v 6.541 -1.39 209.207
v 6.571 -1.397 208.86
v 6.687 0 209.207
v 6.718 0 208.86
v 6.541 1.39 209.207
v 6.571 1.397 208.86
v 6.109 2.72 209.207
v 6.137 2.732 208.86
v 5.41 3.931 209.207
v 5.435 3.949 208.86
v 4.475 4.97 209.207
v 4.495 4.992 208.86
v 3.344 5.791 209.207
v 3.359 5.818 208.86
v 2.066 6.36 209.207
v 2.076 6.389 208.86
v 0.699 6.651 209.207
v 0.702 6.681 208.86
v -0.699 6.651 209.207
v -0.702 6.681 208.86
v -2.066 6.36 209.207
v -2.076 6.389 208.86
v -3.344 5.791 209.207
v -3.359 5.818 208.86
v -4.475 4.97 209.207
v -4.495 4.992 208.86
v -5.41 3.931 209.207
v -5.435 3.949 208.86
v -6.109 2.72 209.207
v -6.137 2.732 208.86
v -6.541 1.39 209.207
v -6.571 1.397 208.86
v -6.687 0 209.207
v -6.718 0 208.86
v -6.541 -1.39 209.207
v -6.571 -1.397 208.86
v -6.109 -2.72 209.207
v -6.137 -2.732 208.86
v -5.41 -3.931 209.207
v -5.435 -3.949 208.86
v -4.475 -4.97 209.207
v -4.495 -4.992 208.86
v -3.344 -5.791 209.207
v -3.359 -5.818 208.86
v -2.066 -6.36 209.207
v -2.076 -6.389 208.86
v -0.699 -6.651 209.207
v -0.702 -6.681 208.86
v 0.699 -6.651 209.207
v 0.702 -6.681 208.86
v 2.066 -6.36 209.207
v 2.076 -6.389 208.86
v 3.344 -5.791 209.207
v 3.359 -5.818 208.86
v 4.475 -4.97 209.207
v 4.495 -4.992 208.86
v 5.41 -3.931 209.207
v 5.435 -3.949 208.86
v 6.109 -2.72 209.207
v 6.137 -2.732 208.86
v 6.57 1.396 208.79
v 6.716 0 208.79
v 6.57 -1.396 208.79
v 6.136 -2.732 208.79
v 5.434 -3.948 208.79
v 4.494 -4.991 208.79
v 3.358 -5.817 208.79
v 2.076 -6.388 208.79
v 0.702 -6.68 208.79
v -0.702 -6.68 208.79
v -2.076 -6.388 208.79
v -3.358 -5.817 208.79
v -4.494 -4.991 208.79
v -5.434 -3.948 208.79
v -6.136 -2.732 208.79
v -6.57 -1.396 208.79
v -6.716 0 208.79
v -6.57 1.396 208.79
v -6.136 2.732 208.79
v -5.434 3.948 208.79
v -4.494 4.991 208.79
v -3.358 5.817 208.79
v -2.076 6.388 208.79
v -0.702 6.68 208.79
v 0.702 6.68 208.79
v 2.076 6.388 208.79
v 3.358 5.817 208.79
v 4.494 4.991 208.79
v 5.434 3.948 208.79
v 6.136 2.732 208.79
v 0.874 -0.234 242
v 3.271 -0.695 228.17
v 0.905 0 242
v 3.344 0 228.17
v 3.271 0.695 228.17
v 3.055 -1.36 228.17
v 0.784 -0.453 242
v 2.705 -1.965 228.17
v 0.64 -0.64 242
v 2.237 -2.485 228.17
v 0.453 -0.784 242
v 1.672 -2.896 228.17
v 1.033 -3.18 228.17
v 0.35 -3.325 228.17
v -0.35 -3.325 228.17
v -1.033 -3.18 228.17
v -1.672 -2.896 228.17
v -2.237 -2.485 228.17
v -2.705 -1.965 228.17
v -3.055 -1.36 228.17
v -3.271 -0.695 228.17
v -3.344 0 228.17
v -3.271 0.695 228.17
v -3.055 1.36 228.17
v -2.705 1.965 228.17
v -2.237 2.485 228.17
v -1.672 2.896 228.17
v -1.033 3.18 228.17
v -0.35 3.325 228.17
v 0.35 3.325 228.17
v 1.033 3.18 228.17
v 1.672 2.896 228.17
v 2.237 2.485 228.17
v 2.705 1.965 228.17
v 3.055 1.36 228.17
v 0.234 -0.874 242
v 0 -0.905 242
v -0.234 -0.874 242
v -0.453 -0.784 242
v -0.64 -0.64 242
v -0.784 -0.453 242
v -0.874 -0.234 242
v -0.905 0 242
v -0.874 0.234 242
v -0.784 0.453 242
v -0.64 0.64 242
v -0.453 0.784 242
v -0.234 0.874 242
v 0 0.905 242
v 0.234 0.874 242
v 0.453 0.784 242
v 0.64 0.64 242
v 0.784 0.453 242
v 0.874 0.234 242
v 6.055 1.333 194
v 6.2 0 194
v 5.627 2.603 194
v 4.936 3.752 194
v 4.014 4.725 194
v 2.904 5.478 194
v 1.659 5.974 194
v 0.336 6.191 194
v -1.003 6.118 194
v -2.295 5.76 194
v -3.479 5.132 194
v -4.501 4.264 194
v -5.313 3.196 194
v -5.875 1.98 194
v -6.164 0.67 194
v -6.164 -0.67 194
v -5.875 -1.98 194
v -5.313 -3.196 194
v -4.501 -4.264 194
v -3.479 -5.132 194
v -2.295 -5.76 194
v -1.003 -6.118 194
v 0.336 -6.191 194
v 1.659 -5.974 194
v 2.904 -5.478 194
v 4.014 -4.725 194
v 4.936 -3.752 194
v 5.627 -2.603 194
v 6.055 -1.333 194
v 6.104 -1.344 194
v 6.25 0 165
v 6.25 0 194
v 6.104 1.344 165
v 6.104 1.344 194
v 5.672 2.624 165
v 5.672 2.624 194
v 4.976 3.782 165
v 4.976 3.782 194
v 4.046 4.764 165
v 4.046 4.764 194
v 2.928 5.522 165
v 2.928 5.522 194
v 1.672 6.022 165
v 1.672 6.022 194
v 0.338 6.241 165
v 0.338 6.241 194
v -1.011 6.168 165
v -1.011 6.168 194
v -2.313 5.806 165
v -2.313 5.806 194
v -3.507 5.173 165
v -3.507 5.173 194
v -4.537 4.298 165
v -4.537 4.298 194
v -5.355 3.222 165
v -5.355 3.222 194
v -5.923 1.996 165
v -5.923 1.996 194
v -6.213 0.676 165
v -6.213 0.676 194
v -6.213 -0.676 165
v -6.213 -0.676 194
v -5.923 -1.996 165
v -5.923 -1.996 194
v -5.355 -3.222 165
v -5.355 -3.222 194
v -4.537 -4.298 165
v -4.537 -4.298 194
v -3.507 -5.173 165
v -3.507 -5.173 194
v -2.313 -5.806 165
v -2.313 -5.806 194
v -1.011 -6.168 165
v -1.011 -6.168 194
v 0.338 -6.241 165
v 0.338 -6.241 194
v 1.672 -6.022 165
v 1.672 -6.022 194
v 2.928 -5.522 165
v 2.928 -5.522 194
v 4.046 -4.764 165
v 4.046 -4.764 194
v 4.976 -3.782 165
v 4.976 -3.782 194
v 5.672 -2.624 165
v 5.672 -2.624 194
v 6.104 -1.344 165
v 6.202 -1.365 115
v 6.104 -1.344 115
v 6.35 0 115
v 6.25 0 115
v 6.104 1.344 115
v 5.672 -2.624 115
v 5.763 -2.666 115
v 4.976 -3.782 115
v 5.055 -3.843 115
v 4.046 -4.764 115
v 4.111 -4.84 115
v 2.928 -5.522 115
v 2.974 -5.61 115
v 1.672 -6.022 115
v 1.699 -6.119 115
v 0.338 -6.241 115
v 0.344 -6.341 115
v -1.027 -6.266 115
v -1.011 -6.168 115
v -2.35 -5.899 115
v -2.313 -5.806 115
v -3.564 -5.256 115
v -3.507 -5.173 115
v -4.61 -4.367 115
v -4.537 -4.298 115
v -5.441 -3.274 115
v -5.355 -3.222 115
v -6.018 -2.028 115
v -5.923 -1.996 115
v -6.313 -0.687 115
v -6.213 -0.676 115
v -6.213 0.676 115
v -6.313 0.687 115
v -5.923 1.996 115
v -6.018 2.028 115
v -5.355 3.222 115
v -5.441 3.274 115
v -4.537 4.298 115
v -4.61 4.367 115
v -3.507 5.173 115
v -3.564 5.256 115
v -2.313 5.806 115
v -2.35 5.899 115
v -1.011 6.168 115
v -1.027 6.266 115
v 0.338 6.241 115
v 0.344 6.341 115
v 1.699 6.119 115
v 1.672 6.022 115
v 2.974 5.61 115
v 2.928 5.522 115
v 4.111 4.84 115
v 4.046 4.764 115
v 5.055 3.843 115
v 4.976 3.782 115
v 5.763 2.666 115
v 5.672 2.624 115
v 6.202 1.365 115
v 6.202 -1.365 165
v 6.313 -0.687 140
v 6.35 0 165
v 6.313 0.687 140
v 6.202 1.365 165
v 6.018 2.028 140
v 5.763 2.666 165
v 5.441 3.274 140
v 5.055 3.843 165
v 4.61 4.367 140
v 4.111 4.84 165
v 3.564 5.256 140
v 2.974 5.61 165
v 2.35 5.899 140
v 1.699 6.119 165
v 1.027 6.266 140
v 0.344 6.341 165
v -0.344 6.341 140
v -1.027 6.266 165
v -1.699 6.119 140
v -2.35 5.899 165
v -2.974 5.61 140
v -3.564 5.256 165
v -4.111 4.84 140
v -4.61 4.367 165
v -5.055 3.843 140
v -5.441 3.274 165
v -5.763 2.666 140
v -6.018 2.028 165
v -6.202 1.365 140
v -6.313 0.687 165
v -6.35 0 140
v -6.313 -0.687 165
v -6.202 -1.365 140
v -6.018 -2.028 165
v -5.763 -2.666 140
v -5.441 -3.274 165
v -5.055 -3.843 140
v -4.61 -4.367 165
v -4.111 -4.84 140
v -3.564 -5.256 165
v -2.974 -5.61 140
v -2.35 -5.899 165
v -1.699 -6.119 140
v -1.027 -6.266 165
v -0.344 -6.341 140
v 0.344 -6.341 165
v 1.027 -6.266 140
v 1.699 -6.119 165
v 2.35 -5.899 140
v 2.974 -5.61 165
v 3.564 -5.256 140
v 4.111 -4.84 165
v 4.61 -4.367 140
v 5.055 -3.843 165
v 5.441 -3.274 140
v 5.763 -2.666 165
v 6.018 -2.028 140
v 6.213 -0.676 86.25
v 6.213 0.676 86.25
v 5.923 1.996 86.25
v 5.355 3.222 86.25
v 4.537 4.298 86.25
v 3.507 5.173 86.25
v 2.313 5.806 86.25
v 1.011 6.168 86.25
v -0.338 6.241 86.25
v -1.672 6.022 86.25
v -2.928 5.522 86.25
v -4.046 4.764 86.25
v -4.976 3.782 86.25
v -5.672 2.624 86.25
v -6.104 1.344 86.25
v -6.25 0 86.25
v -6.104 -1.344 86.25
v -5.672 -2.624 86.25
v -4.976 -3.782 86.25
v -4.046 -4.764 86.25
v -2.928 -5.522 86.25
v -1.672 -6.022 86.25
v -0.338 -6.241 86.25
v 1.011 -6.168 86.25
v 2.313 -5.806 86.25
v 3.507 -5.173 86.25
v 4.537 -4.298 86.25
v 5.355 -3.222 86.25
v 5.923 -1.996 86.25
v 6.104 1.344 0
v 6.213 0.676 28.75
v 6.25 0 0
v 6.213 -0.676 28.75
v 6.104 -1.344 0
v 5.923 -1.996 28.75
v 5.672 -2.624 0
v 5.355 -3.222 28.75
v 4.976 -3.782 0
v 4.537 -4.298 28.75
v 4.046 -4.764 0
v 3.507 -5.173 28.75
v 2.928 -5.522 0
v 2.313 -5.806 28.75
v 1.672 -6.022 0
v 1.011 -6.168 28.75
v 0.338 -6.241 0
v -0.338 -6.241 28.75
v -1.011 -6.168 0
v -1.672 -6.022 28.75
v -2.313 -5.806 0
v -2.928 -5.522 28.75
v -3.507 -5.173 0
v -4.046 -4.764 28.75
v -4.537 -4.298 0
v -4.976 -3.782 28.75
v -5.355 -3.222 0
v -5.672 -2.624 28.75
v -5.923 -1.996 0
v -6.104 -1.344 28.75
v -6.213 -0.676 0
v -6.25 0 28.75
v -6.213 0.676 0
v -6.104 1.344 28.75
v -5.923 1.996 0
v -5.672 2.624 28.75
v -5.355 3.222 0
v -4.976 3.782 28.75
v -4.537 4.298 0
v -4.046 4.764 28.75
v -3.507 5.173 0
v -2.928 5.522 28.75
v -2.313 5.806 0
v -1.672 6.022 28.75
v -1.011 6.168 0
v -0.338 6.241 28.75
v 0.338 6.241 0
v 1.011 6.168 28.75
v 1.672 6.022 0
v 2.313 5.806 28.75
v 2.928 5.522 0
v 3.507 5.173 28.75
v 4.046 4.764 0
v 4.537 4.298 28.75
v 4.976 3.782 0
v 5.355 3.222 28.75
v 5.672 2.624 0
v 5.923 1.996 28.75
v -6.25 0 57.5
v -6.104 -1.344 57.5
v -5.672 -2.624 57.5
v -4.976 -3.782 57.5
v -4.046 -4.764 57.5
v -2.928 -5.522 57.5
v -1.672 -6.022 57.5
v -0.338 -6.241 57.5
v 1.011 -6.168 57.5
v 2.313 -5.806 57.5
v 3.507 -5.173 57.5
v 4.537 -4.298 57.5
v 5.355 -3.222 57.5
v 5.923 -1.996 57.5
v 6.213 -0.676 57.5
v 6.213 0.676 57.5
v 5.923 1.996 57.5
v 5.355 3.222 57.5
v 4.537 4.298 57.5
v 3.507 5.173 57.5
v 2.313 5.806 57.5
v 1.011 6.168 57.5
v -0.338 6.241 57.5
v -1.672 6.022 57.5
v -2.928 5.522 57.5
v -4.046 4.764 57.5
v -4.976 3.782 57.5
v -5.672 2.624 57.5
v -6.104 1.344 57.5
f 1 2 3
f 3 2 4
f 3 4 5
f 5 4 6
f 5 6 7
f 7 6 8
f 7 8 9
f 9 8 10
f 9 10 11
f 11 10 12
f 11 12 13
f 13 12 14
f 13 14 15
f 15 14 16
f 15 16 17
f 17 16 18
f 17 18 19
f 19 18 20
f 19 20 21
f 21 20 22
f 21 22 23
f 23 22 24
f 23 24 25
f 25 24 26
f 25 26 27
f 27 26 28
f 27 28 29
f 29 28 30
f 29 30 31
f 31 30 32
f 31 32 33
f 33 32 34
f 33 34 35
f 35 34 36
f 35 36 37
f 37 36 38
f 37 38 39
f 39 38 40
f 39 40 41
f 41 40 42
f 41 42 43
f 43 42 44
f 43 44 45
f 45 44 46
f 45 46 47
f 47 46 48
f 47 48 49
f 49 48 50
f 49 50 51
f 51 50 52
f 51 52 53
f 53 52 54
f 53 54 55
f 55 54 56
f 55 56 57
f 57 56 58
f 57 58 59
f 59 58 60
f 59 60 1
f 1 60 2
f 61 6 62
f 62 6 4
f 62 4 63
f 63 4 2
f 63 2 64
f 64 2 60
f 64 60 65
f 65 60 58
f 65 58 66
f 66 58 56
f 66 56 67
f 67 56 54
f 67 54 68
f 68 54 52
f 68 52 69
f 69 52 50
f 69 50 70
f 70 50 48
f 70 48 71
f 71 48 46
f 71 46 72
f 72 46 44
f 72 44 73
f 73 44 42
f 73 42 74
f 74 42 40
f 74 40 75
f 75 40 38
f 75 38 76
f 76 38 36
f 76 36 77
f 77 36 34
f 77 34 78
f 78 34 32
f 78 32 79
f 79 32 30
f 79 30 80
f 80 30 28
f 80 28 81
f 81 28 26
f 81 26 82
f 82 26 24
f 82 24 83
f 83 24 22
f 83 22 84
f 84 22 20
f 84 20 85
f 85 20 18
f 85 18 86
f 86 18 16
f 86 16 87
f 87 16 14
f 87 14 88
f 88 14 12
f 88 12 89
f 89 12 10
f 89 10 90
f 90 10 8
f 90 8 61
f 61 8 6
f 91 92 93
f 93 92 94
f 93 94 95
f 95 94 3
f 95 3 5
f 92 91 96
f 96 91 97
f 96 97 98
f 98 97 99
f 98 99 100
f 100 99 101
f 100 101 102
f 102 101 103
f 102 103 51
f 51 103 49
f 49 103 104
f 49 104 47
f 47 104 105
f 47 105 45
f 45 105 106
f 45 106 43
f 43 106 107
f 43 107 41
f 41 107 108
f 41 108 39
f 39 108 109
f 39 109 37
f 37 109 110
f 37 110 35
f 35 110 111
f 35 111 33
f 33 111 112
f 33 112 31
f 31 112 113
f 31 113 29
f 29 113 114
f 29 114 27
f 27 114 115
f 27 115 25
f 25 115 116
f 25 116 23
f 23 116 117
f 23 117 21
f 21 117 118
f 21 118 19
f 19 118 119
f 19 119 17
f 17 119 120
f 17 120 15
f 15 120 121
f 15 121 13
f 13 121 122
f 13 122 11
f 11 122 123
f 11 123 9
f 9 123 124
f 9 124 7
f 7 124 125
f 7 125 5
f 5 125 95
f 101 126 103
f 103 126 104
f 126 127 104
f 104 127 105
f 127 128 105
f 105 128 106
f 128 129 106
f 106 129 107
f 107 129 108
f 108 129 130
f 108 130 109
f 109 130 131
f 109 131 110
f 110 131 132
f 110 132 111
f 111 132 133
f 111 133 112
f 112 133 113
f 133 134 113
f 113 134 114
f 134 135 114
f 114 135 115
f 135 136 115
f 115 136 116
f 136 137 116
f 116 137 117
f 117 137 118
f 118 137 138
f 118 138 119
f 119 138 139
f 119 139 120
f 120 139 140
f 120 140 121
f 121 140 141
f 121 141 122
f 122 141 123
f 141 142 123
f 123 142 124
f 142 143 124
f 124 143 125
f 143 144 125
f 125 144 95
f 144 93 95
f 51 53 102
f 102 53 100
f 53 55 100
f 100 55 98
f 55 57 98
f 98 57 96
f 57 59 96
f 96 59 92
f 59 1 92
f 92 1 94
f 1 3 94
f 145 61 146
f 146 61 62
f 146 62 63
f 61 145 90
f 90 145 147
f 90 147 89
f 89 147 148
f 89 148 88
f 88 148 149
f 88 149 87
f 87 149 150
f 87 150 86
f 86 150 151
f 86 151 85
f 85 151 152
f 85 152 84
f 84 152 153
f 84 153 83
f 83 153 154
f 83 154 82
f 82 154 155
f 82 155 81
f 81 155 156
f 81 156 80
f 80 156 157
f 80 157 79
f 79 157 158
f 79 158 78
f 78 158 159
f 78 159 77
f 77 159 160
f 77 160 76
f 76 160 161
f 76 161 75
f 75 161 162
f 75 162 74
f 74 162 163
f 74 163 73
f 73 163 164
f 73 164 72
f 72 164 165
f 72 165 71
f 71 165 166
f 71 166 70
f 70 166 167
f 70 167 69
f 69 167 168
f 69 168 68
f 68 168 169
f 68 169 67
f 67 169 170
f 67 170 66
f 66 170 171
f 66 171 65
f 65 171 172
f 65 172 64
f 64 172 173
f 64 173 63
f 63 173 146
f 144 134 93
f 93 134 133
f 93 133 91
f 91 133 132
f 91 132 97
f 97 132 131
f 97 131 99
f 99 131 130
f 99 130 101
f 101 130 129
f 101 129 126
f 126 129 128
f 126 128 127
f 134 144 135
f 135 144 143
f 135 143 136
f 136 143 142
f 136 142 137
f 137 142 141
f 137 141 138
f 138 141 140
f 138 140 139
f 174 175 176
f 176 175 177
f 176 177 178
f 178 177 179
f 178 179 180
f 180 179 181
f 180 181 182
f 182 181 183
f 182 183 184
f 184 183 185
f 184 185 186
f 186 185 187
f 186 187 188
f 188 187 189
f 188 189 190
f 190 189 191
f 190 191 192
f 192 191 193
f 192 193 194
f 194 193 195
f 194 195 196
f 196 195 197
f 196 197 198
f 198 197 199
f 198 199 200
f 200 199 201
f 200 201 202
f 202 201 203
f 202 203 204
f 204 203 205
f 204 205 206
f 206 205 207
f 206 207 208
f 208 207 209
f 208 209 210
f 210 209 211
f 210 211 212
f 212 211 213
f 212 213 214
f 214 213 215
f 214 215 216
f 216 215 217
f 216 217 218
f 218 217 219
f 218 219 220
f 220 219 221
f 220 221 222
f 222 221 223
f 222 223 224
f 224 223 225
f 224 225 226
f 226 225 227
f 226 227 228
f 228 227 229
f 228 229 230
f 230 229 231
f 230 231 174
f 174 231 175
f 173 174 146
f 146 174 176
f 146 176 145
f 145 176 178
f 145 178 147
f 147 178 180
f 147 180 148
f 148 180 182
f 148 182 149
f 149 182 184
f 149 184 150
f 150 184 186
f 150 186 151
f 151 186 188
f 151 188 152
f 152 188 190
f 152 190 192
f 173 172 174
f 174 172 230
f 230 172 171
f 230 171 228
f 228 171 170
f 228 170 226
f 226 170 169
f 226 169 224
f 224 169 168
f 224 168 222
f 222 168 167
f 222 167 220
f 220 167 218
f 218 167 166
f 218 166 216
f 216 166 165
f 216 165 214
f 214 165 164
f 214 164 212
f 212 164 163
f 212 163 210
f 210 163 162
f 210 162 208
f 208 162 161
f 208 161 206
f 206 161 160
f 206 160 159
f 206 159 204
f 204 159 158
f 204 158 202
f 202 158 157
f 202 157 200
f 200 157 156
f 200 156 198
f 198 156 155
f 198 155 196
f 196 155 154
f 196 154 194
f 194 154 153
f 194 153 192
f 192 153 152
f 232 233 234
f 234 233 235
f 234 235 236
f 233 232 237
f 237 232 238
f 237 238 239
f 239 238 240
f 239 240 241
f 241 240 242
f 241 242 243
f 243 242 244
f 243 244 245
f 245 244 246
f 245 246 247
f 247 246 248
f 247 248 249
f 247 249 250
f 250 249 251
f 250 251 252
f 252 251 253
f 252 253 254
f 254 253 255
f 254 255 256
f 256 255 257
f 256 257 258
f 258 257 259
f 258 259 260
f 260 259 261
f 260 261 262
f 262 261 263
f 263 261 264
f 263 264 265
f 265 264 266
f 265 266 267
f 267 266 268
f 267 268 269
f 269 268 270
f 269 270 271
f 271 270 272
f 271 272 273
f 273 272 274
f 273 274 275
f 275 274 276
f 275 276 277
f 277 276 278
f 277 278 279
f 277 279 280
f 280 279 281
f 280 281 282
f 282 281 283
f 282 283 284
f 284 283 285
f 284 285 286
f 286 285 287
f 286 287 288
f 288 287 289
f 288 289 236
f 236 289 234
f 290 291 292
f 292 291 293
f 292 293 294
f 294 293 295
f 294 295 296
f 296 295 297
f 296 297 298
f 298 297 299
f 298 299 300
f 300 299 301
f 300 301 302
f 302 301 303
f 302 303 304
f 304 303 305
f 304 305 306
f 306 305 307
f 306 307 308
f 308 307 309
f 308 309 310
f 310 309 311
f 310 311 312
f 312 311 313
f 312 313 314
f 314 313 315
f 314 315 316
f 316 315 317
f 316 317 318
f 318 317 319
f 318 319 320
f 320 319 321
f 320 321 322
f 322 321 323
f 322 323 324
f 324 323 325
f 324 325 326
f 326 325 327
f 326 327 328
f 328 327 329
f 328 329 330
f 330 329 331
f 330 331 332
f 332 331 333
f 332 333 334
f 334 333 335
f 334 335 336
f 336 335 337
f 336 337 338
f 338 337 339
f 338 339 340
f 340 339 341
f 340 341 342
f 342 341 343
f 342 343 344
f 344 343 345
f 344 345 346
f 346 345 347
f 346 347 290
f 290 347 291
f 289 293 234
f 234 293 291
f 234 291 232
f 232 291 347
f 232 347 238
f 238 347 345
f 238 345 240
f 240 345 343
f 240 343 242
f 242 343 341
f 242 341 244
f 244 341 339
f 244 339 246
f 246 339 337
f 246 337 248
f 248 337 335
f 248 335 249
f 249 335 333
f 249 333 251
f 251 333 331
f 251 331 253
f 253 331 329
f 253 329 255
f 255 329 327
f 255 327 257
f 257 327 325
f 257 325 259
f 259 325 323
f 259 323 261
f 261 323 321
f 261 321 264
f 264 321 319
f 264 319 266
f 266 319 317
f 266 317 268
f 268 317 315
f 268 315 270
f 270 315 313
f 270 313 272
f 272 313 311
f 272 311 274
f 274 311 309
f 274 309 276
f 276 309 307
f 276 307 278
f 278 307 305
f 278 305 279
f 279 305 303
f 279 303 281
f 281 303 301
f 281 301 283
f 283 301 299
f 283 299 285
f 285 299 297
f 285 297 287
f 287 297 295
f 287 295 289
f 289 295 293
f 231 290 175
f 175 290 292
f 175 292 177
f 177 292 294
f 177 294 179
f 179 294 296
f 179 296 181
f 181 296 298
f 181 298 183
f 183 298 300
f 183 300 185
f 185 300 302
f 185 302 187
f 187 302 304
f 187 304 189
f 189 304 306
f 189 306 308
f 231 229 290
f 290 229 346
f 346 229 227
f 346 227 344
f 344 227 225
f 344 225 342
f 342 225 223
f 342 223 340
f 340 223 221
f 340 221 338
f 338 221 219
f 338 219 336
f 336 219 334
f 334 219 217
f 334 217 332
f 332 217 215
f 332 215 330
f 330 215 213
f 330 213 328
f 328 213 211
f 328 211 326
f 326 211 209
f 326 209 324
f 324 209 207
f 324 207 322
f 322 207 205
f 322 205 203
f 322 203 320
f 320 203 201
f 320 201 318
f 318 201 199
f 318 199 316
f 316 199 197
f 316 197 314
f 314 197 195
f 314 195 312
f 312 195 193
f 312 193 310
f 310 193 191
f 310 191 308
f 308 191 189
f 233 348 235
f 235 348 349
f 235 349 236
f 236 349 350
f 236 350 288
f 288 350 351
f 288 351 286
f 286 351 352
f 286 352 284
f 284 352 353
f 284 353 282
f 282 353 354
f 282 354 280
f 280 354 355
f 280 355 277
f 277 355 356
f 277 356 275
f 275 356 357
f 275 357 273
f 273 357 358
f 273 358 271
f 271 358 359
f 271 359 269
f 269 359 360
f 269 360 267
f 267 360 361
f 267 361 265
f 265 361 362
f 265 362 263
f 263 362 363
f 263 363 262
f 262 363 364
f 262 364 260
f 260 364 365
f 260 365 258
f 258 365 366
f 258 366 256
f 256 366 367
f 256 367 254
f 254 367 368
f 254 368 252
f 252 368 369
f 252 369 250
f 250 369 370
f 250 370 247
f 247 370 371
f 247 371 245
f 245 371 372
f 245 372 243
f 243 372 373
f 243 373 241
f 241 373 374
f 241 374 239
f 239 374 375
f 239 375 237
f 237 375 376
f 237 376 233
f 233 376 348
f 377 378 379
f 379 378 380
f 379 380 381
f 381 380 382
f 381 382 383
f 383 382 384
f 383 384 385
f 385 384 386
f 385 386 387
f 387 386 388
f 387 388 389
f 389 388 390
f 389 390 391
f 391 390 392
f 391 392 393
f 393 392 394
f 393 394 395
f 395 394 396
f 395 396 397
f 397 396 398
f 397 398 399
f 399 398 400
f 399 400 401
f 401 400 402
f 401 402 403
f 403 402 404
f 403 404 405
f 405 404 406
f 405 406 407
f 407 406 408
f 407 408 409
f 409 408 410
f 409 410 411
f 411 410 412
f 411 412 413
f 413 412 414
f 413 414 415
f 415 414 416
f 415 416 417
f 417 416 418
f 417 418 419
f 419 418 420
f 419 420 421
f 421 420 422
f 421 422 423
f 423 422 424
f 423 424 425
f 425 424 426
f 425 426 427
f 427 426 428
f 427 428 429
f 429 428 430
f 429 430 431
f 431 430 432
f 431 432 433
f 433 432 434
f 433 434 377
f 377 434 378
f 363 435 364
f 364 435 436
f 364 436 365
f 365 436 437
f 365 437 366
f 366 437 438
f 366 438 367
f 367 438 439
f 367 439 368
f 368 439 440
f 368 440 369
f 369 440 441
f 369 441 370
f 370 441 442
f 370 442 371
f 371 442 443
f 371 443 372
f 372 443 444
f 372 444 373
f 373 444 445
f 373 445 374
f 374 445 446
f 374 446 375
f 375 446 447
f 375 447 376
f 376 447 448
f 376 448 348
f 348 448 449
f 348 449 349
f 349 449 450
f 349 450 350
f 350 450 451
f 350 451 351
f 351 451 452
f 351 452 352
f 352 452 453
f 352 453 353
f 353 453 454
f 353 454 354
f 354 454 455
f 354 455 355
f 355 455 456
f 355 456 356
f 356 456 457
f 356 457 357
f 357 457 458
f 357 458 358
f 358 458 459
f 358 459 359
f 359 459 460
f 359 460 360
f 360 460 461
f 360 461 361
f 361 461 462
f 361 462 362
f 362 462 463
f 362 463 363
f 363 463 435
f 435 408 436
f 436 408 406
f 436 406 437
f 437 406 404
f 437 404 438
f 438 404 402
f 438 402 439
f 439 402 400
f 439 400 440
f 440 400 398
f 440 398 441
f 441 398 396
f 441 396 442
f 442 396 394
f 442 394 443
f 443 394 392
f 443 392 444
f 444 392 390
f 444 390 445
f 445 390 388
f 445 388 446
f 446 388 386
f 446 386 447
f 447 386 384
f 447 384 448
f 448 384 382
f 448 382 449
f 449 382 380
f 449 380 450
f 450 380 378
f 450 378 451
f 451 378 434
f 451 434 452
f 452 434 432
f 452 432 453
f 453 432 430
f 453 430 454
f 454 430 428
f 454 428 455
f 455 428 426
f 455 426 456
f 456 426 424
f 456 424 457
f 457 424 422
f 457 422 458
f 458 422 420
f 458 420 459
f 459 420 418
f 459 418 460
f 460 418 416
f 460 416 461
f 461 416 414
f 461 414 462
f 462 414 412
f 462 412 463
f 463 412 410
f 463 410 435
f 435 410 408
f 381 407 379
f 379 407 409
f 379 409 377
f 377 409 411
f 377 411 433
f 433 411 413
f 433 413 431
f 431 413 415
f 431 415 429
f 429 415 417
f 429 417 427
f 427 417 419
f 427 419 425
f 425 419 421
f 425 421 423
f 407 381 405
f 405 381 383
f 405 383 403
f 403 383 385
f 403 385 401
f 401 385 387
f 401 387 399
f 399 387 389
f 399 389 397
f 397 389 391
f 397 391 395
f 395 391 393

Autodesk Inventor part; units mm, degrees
ref_plane "YZ Plane" through (0, 0, 0) normal (1, 0, 0) x (0, 1, 0)
ref_plane "XZ Plane" through (0, 0, 0) normal (0, 1, 0) x (-1, 0, 0)
ref_plane "XY Plane" through (0, 0, 0) normal (0, 0, 1) x (1, 0, 0)
sketch "スケッチ5" plane through (0, 0, 0) normal (0, 0, 1) x (1, 0, 0)
  circle A0 centre (0, 0) radius 6.25
  dimension "d14" = 12.5
extrude "押し出し5" add sketch "スケッチ5" along normal blind 115
sketch "スケッチ6" plane through (0, 0, 115) normal (0, 0, 1) x (1, 0, 0)
  circle A0 centre (0, 0) radius 6.35
  dimension "d17" = 12.7
extrude "押し出し6" add sketch "スケッチ6" along normal blind 50
sketch "スケッチ7" plane through (0, 0, 165) normal (0, 0, 1) x (1, 0, 0)
  circle A0 centre (0, 0) radius 6.25
  dimension "d20" = 12.5
extrude "押し出し7" add sketch "スケッチ7" along normal blind 29
sketch "スケッチ8" plane through (0, 0, 194) normal (0, 0, 1) x (1, 0, 0)
  circle A0 centre (0, 0) radius 6.2
  dimension "d23" = 12.4
extrude "押し出し8" add sketch "スケッチ8" along normal blind 15 draft 2
sketch "スケッチ9" plane through (0, 0, 209) normal (0, 0, 1) x (1, 0, 0)
  circle A0 centre (0, 0) radius 6.7238
extrude "押し出し9" add sketch "スケッチ9" along normal blind 33 draft -10
fillet "フィレット3" radius 2 1 edges at (-6.7238, 0, 209)
properties part number "hude"
